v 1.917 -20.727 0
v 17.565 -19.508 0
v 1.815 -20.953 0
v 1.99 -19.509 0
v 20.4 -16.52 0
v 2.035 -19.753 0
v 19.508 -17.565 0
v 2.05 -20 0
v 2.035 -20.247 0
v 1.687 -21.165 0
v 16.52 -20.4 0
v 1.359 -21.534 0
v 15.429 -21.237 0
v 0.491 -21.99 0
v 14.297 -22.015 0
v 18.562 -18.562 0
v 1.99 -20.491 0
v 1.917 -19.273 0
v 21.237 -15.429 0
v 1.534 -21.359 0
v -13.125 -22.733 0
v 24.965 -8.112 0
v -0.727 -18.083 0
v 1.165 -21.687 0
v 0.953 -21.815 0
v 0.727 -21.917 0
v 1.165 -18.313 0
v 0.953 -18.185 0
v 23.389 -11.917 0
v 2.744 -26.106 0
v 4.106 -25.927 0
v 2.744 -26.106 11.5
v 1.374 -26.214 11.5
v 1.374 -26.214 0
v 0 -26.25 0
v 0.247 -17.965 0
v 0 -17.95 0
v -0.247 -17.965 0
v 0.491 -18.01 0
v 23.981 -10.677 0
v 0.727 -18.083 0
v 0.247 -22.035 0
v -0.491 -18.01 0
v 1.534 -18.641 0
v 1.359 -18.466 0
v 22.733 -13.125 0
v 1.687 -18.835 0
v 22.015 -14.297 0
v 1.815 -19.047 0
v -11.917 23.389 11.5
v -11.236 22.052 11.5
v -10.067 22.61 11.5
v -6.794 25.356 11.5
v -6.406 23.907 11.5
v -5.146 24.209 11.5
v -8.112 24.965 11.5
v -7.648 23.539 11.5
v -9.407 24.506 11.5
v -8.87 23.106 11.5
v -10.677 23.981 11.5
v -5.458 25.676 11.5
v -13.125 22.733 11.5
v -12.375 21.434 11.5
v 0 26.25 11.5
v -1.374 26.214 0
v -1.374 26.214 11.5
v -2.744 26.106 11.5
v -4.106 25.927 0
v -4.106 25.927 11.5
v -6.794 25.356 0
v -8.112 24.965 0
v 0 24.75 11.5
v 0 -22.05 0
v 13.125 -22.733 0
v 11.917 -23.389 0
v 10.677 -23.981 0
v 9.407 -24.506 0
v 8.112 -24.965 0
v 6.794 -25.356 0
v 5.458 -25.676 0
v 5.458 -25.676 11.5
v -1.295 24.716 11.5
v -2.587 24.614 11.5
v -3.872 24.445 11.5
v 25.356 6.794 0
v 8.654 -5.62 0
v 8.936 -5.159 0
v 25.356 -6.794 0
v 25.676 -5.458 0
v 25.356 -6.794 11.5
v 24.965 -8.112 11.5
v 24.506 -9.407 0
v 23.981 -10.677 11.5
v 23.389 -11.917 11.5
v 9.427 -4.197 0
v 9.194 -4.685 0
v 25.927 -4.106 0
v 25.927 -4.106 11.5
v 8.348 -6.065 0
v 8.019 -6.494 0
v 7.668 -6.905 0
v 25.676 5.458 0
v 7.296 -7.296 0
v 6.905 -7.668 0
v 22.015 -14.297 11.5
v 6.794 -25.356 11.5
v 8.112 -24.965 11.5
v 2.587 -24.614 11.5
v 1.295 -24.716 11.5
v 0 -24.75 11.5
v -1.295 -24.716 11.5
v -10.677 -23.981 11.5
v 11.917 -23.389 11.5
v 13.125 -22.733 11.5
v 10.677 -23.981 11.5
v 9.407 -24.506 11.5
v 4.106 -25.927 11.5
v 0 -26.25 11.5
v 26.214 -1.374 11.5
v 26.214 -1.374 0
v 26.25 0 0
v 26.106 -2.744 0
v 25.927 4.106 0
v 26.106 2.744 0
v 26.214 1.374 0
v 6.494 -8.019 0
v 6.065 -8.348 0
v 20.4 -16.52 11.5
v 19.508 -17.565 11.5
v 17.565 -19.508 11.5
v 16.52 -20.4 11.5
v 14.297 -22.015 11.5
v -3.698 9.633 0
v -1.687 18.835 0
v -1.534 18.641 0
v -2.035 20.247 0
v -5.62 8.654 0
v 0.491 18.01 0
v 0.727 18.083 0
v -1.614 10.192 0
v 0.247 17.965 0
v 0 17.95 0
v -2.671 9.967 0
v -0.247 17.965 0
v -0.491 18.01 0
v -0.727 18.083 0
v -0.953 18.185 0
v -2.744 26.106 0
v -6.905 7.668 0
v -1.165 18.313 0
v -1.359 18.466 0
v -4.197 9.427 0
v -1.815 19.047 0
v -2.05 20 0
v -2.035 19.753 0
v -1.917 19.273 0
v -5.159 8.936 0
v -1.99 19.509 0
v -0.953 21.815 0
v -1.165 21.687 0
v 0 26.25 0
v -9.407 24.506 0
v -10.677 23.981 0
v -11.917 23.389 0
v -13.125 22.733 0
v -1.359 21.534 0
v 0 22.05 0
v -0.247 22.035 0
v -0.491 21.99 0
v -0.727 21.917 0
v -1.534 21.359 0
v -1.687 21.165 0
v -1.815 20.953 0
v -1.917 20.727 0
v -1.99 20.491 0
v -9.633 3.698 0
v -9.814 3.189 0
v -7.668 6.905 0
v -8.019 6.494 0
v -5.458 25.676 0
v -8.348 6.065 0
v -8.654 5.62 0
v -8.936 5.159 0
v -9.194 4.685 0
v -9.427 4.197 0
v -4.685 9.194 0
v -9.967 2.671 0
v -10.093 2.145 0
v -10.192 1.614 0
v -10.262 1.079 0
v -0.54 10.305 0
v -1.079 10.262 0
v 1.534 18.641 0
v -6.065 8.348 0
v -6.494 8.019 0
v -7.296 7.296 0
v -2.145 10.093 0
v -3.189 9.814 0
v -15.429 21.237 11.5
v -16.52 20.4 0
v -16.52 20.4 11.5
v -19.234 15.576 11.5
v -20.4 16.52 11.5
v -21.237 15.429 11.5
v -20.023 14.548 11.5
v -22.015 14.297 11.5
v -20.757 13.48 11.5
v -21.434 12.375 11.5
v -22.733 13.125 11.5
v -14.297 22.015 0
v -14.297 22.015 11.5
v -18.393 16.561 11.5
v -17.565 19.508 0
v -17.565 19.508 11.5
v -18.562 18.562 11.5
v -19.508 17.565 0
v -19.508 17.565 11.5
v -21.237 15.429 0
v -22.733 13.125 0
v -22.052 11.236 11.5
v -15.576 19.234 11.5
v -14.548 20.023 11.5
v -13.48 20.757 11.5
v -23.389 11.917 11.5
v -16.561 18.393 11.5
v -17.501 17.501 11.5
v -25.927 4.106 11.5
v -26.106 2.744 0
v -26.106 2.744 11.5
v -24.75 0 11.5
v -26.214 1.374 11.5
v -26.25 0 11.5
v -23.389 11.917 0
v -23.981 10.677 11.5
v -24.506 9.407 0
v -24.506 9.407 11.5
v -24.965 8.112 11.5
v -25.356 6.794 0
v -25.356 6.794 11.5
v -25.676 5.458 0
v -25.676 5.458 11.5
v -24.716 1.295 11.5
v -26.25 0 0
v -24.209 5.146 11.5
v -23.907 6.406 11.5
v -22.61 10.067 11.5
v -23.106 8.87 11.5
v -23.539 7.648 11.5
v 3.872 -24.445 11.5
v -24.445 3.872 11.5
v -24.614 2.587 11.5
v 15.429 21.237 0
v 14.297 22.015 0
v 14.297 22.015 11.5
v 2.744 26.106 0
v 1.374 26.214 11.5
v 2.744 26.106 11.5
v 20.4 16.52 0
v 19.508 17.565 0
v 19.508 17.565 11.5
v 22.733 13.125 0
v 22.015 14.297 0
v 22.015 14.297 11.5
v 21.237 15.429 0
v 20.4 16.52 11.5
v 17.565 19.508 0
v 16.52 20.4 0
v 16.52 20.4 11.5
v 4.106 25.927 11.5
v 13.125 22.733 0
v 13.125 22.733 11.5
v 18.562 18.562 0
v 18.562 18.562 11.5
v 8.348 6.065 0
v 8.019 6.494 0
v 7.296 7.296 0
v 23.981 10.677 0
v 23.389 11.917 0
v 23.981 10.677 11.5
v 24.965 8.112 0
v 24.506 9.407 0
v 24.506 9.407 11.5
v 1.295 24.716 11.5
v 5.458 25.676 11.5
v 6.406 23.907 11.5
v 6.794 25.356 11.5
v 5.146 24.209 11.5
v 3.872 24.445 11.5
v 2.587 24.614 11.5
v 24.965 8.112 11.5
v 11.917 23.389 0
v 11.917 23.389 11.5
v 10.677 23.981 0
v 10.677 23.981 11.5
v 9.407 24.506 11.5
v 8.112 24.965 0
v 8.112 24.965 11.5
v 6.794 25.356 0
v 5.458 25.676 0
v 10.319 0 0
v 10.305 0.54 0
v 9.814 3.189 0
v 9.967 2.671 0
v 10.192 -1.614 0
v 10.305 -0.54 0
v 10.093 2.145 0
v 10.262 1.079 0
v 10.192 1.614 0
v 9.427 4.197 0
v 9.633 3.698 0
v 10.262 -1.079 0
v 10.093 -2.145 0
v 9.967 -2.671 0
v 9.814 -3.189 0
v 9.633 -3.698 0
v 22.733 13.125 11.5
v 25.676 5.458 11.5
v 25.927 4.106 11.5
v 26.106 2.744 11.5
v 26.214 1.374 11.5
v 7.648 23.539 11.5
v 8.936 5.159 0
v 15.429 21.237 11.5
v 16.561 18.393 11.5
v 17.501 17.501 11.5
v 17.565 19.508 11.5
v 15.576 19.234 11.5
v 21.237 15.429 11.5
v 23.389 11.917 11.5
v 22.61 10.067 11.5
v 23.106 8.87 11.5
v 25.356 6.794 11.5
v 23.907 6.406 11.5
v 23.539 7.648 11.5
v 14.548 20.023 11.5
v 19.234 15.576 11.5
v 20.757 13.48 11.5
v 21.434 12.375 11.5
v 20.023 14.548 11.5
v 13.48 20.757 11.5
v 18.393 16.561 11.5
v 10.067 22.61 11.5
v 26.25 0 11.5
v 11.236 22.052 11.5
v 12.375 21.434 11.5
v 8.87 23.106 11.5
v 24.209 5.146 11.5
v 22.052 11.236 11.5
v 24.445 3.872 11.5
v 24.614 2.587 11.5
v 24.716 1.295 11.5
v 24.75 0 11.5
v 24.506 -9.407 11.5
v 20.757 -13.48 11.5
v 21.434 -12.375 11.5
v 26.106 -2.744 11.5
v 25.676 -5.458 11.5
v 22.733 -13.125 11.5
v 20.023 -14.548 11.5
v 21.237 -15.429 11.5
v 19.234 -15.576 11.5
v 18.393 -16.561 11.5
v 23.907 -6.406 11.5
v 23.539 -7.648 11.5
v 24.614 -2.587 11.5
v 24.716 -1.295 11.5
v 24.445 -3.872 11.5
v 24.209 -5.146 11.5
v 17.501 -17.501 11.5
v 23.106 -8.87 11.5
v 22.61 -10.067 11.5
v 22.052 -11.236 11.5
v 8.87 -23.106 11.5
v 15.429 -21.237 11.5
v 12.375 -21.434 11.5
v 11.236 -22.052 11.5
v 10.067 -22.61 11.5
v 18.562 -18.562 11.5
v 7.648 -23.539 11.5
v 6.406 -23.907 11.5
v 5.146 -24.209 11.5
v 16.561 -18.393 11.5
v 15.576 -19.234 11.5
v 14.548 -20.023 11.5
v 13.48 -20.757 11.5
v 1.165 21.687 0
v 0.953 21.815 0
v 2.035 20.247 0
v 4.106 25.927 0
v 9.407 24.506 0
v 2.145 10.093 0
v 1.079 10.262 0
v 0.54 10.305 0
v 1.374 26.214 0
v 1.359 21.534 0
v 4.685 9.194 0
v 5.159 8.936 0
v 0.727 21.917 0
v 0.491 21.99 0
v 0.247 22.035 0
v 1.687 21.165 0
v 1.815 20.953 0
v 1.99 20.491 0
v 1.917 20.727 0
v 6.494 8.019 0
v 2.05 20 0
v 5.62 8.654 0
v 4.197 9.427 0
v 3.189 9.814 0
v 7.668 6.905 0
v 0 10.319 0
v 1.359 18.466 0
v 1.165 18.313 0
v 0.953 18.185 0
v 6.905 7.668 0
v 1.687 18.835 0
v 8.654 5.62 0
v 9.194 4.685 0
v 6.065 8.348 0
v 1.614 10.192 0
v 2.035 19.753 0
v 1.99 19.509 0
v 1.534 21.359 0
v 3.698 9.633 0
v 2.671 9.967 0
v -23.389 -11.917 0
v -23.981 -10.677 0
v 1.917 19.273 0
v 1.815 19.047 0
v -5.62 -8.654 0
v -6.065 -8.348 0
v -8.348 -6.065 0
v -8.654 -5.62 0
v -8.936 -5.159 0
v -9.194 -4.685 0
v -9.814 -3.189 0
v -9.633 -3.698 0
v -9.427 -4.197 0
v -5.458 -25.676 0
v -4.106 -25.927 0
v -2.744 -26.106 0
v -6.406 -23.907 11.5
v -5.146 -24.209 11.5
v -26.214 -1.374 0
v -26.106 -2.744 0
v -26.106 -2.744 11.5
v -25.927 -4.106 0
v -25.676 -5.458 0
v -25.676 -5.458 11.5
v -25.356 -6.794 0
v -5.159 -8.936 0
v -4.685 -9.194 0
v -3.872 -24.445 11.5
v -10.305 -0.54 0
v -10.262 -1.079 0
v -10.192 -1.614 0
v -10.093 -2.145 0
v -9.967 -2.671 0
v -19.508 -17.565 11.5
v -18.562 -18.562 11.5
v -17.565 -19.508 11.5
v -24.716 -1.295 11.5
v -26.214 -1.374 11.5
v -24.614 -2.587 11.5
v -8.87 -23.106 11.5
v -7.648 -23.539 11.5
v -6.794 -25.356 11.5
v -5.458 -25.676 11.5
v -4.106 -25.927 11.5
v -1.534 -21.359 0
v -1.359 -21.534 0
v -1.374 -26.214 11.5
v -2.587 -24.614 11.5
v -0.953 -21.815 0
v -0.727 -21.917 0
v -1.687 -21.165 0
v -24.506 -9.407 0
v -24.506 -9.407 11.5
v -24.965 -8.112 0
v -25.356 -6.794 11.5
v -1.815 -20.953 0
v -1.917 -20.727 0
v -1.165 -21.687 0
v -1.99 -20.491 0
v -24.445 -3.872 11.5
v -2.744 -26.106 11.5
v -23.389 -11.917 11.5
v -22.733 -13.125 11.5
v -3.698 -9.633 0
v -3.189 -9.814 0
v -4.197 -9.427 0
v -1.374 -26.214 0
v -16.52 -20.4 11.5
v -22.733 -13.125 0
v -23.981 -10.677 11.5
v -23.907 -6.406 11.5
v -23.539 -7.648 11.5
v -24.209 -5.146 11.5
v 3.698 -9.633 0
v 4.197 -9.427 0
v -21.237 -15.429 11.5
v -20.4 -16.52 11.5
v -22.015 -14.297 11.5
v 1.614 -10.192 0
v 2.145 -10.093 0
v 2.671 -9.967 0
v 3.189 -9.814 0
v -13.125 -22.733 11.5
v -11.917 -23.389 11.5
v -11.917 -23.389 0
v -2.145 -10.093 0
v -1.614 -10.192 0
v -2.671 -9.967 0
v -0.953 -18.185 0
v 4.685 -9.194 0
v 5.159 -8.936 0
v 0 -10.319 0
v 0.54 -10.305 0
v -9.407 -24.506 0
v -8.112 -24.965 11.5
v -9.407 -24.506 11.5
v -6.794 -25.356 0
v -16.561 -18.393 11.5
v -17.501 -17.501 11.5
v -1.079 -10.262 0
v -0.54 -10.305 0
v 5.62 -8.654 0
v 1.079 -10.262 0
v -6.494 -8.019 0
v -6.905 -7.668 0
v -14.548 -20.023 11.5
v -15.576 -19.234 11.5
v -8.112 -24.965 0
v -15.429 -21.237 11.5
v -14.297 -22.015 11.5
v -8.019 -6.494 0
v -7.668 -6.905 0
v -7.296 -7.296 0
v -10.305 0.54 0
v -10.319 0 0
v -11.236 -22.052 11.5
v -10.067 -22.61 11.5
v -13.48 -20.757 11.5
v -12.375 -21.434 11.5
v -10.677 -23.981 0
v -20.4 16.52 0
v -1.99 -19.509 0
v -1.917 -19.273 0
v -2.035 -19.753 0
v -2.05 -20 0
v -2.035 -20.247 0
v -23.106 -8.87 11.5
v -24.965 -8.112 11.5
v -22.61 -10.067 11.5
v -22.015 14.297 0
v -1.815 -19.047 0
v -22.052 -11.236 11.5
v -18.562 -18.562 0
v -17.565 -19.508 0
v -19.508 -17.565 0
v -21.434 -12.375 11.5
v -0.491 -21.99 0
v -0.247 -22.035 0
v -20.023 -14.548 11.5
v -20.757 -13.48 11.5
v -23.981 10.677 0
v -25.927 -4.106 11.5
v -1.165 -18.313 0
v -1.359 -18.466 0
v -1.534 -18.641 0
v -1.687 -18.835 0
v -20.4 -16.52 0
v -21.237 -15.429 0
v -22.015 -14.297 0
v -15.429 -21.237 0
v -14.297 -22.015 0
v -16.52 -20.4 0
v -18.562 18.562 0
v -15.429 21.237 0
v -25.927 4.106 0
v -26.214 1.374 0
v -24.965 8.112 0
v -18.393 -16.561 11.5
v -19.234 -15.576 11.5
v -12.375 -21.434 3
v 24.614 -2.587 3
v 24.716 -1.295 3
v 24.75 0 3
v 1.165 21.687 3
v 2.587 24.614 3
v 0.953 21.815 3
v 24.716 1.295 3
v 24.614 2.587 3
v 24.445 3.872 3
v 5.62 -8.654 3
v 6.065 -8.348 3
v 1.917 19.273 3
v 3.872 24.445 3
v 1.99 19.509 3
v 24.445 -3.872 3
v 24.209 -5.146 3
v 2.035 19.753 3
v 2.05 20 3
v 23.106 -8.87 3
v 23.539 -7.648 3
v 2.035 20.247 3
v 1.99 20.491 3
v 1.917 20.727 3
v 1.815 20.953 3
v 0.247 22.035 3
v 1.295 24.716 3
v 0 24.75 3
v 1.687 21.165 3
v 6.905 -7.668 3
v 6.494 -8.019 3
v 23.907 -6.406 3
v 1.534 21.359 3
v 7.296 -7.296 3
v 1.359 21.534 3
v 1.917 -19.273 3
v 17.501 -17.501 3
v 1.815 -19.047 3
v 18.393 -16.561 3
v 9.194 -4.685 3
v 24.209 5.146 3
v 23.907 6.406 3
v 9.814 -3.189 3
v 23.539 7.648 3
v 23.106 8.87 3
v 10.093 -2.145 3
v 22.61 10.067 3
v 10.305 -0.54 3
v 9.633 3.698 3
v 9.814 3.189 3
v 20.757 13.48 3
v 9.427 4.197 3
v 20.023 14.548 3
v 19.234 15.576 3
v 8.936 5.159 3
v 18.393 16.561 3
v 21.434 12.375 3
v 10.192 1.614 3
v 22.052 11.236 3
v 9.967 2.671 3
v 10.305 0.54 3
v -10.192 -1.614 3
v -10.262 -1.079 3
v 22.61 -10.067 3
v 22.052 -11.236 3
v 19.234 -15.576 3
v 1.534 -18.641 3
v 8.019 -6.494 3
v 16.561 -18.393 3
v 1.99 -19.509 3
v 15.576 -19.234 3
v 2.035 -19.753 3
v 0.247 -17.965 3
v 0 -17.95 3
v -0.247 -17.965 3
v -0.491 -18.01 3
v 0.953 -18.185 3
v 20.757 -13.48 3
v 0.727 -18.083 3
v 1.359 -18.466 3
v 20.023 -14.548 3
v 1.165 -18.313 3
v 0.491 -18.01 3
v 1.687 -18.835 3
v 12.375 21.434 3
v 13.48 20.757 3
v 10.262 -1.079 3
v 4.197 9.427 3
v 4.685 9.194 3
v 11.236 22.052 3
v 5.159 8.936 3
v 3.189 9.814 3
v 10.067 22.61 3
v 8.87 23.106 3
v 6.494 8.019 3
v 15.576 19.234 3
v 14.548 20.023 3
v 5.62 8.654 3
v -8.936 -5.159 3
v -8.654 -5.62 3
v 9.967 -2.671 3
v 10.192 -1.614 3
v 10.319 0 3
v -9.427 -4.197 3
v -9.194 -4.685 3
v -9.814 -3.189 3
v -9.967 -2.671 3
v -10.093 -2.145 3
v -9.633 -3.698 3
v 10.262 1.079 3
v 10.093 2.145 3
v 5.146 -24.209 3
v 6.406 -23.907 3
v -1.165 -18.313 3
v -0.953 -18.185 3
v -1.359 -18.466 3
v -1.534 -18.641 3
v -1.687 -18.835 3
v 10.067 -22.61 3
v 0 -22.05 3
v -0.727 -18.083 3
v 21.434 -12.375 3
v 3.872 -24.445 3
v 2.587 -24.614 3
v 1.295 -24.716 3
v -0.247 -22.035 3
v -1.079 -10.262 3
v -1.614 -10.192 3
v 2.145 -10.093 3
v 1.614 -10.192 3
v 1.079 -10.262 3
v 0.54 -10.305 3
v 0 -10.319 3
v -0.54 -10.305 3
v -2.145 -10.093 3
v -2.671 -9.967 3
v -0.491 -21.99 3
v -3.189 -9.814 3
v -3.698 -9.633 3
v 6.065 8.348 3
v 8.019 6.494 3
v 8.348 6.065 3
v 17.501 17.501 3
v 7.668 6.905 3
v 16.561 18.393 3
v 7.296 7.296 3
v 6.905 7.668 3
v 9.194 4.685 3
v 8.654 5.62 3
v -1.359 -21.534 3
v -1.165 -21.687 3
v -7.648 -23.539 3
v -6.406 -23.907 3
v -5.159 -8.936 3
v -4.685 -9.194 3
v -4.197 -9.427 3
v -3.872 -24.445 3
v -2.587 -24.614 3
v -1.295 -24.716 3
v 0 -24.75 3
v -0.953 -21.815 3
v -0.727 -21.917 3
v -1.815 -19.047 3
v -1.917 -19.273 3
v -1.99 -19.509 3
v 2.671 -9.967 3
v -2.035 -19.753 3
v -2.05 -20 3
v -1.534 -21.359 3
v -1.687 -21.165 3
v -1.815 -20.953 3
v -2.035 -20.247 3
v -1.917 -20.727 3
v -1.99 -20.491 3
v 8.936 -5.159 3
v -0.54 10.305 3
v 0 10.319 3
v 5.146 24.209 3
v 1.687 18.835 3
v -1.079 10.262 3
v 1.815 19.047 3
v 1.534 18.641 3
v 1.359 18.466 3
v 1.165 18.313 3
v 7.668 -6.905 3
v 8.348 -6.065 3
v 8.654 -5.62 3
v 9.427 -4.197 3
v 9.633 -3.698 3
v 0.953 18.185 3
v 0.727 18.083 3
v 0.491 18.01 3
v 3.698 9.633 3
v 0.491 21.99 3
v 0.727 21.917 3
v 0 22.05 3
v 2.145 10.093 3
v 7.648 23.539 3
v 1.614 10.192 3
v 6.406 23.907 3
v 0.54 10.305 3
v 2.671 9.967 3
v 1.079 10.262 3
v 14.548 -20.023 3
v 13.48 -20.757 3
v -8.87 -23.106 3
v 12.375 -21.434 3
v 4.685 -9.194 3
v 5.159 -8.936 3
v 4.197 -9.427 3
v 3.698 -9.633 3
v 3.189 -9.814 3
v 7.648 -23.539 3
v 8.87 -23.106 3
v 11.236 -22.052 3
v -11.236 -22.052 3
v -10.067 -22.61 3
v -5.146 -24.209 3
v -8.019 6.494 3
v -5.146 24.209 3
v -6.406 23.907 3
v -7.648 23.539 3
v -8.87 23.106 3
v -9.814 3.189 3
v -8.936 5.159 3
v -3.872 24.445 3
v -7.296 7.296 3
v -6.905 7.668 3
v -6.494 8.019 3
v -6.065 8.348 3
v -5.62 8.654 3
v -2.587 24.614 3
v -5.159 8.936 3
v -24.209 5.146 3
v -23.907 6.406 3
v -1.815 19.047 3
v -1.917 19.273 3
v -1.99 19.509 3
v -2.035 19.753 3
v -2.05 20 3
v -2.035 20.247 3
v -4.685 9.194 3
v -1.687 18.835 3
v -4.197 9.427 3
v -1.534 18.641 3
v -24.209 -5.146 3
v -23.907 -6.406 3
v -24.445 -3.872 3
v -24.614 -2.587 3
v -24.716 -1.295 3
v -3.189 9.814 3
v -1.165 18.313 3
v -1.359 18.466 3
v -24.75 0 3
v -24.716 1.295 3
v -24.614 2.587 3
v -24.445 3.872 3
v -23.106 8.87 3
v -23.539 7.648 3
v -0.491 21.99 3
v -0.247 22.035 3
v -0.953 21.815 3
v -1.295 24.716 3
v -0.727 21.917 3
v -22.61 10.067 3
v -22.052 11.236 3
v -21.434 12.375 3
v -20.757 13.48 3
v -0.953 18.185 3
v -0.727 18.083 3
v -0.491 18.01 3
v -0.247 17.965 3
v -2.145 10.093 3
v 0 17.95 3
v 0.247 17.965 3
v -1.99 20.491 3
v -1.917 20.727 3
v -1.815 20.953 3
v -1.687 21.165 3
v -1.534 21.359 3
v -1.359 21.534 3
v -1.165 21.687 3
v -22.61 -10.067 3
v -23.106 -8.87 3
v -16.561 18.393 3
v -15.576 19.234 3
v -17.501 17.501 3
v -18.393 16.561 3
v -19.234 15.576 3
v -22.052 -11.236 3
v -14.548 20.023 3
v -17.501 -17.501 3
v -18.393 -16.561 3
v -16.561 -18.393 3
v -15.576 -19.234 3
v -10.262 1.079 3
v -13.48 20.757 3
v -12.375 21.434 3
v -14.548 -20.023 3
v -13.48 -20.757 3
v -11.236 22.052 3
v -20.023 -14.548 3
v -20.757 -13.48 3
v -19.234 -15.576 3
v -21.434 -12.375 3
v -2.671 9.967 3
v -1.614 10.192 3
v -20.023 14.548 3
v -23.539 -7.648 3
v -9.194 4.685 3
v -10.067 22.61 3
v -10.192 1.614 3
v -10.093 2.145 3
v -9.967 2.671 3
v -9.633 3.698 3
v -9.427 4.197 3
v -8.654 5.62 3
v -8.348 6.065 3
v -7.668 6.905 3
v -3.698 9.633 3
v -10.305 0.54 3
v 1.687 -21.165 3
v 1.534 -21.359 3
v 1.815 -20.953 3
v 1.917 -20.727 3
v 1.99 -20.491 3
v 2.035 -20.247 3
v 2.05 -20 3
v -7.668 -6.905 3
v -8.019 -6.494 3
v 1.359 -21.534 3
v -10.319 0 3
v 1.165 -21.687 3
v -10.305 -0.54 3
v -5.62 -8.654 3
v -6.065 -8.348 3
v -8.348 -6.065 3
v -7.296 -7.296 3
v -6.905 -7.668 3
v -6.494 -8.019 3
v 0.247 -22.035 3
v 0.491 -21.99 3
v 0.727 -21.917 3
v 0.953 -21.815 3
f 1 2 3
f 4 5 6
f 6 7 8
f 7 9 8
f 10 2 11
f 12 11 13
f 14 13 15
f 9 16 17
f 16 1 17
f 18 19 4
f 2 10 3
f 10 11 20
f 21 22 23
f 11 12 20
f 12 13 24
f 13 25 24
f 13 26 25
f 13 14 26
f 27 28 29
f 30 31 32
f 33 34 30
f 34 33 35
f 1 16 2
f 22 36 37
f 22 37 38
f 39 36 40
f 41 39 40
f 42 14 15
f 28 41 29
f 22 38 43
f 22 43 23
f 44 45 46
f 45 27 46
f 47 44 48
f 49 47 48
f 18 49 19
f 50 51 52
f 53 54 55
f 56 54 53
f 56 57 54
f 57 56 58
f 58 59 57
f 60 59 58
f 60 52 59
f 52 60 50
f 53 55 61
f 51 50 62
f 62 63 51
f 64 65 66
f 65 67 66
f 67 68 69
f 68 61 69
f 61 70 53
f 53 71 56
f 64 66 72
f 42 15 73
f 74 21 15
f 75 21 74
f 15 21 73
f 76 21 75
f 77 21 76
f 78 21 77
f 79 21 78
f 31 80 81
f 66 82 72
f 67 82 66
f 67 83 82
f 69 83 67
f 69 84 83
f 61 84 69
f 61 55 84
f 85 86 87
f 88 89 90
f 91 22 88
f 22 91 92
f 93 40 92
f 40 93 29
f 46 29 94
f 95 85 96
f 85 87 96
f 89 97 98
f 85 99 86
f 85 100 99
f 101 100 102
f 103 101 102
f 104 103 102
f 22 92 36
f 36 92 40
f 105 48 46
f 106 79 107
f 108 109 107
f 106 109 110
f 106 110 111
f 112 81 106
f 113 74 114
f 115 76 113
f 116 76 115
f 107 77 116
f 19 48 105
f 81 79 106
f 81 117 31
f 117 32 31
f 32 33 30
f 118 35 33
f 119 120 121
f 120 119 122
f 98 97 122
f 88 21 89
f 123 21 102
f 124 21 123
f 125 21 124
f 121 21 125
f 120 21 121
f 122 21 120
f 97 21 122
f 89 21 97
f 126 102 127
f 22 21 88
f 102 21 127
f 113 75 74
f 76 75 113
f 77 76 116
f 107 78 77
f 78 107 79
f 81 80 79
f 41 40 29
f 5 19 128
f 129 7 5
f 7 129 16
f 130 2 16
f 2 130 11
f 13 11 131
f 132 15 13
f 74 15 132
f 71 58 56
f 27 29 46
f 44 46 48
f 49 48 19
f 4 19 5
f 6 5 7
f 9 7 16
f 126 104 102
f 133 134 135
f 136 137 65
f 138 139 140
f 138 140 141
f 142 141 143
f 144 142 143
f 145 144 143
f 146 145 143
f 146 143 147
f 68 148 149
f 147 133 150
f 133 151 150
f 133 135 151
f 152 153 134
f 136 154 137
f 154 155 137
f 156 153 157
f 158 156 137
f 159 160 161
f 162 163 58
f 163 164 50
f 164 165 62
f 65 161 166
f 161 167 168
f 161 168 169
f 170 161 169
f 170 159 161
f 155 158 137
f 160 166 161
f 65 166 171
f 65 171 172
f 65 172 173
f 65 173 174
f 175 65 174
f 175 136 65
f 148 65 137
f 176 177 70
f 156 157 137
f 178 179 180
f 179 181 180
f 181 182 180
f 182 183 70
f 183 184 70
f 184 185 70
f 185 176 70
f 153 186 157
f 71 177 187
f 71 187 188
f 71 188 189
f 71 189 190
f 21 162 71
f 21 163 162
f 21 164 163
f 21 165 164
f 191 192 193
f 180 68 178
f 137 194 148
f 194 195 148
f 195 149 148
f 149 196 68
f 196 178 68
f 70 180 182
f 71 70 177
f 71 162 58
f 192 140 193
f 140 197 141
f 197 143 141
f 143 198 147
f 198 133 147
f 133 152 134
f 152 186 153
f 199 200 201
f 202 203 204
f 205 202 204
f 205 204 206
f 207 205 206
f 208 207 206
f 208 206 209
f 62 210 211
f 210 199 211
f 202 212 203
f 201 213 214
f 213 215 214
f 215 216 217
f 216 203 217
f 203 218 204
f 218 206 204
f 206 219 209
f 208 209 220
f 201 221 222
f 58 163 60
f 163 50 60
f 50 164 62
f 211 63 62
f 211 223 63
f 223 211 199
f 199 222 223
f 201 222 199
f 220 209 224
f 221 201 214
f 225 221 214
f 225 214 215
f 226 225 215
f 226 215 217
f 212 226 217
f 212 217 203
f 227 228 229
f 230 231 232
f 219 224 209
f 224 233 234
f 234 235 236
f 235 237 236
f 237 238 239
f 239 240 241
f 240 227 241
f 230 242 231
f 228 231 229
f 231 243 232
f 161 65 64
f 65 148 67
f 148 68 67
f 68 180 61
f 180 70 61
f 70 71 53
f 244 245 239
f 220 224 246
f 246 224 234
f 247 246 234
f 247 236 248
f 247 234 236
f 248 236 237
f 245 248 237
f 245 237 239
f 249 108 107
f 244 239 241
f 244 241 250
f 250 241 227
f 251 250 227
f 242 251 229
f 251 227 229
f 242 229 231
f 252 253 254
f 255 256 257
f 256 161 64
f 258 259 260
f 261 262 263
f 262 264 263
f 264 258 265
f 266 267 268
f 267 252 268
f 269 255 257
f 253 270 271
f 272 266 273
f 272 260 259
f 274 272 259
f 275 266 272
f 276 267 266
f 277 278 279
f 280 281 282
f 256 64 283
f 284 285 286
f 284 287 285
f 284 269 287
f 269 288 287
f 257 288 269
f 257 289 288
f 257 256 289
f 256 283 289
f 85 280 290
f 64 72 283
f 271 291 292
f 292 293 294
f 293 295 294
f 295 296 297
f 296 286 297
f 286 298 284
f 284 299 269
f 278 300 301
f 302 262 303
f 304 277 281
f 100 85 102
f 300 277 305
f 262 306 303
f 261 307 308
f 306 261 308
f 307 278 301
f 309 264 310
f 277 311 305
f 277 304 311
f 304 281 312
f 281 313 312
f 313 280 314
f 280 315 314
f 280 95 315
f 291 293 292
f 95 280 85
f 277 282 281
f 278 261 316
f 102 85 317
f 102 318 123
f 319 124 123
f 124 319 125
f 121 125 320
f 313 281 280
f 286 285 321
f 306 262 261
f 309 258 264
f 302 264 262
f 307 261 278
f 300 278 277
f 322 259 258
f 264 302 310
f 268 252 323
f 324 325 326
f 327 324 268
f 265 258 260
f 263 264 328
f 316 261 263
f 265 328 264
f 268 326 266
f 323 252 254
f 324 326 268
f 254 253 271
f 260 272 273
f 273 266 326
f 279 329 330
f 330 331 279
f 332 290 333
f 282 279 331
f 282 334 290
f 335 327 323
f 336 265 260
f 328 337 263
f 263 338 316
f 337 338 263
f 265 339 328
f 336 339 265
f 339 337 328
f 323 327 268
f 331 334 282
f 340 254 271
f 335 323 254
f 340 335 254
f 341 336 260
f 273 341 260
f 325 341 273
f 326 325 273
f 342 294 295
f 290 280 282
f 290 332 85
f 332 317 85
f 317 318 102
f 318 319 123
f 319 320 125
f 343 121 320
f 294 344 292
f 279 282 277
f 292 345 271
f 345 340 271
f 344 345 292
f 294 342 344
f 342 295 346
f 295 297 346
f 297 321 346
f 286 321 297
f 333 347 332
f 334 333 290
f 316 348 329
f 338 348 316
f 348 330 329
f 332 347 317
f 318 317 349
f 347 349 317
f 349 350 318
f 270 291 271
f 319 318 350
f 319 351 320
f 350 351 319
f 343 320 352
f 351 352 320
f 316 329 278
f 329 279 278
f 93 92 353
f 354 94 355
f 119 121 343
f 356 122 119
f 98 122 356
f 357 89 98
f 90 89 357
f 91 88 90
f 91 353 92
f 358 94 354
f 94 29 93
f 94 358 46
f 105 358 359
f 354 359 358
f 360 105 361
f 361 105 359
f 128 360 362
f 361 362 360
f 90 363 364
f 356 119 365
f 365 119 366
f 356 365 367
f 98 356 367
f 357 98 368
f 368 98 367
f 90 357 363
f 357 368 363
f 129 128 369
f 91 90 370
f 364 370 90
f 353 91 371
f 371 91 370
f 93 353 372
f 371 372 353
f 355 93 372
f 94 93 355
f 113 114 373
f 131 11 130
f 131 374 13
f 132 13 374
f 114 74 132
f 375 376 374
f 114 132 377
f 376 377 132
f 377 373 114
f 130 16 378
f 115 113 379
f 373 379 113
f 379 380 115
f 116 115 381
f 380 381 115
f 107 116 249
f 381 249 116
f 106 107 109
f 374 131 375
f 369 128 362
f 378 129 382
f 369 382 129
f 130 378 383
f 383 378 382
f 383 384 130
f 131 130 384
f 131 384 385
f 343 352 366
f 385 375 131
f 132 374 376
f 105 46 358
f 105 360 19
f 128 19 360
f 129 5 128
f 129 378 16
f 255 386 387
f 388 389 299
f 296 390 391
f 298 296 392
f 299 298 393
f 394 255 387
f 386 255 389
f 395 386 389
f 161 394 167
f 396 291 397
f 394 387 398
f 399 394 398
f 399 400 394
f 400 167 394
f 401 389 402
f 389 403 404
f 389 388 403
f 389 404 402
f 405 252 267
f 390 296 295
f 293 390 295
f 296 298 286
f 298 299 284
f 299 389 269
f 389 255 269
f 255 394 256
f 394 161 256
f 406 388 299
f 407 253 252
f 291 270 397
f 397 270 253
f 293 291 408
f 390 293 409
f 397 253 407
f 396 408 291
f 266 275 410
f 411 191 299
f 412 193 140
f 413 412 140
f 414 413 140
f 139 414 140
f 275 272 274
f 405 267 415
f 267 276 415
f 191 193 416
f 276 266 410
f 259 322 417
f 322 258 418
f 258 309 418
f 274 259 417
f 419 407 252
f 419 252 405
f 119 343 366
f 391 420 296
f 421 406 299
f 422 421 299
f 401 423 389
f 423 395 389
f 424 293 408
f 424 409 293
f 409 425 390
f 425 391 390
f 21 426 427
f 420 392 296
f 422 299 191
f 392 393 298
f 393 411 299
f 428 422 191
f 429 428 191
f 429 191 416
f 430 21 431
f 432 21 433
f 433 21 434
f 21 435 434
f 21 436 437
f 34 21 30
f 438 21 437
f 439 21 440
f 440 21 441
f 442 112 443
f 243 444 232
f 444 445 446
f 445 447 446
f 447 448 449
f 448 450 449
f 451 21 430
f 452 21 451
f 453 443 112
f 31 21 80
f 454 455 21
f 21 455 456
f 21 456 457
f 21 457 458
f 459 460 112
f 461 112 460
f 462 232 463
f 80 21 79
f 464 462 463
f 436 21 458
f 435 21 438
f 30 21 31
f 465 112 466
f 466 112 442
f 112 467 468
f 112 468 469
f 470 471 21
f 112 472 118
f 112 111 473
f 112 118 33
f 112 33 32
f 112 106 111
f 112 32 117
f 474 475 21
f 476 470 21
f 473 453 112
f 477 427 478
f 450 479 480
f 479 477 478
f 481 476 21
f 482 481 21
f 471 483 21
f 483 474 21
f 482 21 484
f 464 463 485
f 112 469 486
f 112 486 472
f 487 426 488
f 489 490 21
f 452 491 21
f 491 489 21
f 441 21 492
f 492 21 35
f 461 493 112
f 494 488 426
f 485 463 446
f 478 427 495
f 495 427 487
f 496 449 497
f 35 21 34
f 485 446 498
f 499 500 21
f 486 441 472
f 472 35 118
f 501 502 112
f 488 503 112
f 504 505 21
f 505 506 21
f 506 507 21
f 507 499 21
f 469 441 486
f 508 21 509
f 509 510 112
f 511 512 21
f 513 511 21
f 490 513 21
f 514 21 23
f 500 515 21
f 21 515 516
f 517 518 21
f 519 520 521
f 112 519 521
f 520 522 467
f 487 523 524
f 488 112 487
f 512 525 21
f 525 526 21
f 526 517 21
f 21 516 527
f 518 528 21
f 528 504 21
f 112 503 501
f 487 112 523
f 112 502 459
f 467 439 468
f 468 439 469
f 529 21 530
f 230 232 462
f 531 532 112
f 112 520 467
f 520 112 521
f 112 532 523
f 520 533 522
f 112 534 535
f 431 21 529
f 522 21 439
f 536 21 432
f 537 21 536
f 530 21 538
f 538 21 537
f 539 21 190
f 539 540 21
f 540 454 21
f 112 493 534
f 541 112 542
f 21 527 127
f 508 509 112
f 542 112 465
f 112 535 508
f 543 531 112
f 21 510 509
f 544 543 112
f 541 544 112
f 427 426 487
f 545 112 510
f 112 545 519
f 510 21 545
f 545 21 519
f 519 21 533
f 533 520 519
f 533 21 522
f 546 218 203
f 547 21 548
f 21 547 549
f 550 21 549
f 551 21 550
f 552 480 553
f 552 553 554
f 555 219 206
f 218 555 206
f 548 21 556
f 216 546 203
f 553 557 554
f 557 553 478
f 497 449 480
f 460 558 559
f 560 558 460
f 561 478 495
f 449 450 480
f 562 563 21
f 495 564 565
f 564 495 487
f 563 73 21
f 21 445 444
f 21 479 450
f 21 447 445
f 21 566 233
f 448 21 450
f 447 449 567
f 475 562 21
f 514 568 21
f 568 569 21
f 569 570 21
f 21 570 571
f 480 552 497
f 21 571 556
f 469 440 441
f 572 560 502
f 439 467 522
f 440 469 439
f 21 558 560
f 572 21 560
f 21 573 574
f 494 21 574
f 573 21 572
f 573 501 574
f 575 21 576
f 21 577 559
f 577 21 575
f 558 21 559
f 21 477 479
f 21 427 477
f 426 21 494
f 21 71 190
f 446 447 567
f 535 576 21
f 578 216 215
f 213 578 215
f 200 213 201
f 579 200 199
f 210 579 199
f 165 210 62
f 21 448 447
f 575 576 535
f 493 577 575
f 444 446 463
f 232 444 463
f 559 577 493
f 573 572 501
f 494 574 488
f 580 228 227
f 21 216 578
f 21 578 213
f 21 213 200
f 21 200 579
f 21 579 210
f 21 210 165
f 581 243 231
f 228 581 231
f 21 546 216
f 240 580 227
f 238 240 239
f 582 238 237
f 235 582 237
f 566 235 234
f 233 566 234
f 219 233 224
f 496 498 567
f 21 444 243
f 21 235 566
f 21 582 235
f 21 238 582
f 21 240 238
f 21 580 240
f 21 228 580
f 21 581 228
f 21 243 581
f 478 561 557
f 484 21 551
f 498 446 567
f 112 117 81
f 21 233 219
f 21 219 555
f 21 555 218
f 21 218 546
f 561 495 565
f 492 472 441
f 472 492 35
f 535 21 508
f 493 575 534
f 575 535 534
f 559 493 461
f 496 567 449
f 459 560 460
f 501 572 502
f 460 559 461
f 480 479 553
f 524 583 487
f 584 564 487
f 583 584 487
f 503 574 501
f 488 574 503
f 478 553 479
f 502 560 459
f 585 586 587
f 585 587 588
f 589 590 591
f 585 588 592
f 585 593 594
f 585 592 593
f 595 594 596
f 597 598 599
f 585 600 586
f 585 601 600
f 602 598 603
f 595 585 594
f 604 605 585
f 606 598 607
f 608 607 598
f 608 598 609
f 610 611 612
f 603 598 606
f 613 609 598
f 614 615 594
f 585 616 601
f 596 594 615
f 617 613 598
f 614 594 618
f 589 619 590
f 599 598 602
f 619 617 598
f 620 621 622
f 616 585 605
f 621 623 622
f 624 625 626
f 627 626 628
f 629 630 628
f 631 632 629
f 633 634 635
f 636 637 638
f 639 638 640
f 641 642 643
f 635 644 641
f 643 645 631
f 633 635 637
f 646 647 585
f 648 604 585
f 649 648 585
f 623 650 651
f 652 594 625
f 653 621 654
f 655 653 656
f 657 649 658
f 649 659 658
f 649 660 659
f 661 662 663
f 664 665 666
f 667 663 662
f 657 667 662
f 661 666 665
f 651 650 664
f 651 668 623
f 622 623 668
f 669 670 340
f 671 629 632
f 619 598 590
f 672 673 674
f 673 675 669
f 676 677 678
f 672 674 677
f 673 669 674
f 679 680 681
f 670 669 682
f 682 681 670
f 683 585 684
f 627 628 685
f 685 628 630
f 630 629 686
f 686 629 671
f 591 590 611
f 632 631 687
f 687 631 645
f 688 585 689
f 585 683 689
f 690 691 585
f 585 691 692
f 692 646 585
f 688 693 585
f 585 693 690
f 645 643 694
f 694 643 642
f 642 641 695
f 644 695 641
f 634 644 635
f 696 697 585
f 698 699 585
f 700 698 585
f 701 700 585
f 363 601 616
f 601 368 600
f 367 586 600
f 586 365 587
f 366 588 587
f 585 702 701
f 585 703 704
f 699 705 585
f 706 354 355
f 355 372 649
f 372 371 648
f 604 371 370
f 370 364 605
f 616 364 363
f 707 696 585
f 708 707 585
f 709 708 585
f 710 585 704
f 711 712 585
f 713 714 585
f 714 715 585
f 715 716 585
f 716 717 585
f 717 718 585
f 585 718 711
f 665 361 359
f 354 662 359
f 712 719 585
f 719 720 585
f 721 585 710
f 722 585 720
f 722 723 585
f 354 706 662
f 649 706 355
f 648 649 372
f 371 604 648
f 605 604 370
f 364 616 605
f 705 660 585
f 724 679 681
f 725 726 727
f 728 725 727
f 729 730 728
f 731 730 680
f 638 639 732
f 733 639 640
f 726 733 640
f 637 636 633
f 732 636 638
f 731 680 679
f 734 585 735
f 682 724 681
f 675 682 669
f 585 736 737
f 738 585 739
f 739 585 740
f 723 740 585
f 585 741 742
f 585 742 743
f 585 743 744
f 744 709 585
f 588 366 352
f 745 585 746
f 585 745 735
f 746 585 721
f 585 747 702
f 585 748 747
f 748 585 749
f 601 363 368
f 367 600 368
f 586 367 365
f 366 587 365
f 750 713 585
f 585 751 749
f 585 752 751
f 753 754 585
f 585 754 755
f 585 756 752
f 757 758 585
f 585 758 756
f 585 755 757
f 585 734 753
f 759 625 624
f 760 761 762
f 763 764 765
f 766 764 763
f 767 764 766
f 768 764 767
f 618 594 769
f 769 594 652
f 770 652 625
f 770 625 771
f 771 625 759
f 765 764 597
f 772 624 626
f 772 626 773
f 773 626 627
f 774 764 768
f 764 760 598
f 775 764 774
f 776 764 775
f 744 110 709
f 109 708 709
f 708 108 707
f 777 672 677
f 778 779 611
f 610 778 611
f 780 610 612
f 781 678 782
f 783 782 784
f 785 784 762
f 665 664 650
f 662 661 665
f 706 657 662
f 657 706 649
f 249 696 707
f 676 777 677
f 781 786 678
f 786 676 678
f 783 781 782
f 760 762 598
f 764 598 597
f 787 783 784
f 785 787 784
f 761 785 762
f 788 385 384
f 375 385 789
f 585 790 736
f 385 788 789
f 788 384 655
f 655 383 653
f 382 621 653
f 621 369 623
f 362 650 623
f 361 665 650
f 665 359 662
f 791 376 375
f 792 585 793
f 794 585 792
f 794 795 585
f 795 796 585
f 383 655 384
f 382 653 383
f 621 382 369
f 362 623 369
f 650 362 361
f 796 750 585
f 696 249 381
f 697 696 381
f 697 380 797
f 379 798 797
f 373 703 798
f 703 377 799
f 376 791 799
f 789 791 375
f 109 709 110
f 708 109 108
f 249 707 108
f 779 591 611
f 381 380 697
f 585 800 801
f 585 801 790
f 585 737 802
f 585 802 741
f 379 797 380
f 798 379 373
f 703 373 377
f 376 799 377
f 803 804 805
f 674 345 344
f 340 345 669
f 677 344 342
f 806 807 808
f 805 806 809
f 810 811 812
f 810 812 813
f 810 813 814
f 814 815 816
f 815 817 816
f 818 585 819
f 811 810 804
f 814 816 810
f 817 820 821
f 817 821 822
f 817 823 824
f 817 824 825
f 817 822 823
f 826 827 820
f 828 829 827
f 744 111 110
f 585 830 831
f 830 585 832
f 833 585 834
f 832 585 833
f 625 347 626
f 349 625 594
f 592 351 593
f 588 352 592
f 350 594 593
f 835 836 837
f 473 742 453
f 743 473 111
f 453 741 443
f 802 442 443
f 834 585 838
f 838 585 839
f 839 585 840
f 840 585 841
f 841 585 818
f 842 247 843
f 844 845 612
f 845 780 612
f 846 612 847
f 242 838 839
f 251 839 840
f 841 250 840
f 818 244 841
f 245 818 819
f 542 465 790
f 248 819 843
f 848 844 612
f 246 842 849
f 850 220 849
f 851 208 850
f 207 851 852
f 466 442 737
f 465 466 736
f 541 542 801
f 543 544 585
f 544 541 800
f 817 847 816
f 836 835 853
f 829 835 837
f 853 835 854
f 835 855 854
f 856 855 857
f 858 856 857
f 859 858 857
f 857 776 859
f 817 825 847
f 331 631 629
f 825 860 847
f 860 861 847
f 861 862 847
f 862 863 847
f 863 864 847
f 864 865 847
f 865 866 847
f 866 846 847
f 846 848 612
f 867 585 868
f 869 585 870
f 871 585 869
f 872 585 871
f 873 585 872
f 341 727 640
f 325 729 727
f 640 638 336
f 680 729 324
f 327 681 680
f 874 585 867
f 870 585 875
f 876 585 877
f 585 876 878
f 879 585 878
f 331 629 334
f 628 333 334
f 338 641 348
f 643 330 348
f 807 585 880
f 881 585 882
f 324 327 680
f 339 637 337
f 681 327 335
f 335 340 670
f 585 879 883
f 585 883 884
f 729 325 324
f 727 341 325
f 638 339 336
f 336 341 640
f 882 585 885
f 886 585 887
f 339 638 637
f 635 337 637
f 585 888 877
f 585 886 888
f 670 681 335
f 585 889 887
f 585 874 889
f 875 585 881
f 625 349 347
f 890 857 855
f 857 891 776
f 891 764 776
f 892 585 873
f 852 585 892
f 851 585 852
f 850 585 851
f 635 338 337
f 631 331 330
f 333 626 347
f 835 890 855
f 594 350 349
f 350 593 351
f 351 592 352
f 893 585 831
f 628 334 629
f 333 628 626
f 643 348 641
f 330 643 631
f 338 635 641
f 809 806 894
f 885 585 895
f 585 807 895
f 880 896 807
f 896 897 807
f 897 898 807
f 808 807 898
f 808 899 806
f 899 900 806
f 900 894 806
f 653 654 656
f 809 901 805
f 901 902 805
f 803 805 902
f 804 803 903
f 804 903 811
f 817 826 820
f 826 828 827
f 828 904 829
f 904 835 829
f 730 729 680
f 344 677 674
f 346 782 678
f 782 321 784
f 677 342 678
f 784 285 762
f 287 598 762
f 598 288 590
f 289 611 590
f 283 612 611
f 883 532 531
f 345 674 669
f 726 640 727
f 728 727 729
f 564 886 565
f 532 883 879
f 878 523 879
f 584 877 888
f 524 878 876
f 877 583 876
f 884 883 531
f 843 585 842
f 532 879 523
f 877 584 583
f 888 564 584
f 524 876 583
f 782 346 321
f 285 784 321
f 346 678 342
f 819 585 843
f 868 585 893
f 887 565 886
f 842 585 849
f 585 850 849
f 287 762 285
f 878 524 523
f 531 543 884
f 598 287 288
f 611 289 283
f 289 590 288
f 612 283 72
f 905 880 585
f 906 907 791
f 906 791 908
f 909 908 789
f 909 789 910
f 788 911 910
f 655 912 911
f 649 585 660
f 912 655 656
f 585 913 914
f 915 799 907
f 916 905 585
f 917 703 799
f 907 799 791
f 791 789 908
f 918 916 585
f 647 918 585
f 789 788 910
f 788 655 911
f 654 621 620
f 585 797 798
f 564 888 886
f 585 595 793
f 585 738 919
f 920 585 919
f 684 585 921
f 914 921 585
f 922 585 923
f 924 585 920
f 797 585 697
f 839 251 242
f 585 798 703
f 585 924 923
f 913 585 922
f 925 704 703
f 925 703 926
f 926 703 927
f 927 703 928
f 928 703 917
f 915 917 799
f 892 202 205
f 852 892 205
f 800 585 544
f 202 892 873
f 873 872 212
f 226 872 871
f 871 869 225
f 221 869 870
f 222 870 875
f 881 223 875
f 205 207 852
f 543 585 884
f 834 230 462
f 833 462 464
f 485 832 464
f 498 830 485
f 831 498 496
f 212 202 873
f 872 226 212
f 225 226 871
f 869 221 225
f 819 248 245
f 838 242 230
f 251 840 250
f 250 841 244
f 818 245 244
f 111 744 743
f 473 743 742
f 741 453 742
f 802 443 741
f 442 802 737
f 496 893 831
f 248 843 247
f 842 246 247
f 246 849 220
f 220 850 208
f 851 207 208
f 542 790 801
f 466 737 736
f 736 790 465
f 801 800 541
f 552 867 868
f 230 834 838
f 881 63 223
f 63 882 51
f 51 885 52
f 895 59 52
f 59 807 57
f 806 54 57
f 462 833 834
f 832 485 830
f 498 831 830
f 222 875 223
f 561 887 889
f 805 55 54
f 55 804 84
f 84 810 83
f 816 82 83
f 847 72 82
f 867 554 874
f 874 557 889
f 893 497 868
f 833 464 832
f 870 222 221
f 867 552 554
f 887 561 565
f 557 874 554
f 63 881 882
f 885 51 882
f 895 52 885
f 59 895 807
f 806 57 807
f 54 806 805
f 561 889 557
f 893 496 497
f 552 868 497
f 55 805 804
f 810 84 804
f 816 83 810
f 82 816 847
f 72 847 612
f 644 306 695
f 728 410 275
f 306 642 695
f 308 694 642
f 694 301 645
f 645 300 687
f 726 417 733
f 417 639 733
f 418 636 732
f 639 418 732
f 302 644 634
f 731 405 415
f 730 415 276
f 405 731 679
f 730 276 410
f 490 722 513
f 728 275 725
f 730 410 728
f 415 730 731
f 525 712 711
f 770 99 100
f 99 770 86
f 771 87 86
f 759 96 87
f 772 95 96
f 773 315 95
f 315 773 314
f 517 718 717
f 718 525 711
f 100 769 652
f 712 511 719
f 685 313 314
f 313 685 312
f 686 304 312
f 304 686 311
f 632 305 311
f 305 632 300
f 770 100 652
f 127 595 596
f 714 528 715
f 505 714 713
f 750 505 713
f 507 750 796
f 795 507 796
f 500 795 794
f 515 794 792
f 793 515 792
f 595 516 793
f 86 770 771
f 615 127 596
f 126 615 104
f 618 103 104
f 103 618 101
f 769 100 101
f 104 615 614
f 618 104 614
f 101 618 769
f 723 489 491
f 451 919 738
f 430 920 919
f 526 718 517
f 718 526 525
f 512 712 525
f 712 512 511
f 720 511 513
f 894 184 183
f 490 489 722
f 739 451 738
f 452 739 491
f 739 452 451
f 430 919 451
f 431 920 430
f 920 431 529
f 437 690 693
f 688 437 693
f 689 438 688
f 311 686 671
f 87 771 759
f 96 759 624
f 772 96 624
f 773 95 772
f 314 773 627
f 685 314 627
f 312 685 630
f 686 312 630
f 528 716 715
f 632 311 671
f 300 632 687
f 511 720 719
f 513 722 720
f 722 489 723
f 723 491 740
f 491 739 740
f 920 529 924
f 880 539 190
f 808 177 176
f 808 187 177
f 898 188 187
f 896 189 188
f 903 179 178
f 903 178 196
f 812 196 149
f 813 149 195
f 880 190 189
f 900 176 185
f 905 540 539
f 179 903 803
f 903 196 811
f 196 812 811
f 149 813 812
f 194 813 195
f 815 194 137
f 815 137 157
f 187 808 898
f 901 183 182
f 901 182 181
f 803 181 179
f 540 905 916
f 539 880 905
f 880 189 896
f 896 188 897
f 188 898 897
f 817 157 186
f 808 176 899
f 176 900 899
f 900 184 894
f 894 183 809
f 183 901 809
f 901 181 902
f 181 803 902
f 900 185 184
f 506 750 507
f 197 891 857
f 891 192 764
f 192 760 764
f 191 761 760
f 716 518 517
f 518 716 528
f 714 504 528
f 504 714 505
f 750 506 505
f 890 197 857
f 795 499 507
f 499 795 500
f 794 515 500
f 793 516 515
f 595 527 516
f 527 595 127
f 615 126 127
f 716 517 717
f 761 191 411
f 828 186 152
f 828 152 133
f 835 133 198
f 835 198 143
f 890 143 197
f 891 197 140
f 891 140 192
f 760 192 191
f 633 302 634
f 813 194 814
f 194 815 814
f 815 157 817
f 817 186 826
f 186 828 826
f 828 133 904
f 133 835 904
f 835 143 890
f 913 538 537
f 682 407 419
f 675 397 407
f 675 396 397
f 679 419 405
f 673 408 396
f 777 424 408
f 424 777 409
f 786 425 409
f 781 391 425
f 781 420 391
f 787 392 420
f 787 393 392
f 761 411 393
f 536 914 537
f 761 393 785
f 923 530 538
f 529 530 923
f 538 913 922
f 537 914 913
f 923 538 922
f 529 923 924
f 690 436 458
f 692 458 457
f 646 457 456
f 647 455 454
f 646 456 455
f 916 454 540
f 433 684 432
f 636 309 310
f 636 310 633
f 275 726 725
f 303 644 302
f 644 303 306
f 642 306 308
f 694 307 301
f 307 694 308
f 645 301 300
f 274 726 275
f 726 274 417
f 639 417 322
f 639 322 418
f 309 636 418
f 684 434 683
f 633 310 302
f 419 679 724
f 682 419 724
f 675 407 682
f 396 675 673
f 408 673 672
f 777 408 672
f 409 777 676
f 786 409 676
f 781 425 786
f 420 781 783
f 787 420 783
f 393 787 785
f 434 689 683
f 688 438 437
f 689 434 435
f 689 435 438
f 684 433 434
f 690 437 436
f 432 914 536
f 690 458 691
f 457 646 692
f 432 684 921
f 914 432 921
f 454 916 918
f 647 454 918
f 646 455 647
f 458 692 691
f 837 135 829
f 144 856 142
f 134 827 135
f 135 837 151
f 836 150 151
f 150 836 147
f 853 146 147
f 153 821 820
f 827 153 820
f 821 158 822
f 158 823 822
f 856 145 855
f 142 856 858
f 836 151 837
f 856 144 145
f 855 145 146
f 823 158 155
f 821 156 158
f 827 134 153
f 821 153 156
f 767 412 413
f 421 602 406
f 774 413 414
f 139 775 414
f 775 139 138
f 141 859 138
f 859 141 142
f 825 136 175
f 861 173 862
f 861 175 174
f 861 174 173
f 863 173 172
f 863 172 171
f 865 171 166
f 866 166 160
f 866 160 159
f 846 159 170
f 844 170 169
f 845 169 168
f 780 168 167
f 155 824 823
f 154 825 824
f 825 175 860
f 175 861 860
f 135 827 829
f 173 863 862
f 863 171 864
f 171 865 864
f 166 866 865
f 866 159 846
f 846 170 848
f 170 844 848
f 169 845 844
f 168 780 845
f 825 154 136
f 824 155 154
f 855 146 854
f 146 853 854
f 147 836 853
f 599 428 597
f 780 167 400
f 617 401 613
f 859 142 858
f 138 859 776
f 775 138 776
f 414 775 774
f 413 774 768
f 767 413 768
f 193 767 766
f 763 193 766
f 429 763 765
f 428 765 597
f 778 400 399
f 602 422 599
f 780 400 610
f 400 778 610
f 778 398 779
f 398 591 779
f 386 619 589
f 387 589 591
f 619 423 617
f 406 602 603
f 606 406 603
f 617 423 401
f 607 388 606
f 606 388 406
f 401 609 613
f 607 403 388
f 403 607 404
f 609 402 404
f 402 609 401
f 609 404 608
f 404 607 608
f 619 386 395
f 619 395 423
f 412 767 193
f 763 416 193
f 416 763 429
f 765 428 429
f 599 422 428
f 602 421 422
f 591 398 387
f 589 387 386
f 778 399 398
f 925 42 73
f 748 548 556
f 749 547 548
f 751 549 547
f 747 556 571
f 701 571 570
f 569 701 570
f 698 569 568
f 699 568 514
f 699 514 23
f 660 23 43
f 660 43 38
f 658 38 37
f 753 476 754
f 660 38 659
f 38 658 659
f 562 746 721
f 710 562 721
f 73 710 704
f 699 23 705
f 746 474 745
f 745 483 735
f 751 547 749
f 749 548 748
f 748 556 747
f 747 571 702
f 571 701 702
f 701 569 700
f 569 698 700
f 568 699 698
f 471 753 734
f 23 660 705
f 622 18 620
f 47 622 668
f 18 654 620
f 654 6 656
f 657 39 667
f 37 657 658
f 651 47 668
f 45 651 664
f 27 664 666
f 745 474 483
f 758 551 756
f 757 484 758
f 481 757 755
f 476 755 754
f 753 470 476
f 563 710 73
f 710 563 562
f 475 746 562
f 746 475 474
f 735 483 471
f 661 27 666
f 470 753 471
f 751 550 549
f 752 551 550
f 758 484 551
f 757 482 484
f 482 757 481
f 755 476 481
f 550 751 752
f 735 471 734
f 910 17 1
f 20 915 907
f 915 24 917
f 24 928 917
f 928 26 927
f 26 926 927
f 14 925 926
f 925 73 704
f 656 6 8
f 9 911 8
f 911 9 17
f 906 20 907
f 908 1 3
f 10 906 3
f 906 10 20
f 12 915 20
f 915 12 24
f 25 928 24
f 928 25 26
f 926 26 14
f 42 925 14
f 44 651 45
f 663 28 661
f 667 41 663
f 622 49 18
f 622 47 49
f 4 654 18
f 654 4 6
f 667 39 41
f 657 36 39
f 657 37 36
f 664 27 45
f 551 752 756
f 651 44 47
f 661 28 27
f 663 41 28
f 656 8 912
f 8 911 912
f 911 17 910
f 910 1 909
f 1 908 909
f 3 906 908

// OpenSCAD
// print with 10% rectilinear infill

$fa=3;
$fs=0.25;
epsilon=0.01;

shell_dia=49.5; // inside diameter of front brake fluid reservoir top
shell_thk=3;    // shell thickness
shell_hgt=8.5;  // height of lip
bolt_off=20;    // bolt offsets
bolt_dia=4.1;   // bolt hole size
bottle_dia=20.6375;

difference() {
  // main body
  cylinder(h=shell_hgt+shell_thk, d=shell_dia+shell_thk);
  translate([0, 0, shell_thk]) {
    cylinder(h=shell_hgt+shell_thk, d=shell_dia);
  }
  // bottle hole
  cylinder(h=shell_thk, d=bottle_dia);
  // bolt hole
  translate([0, bolt_off, 0]) {
    cylinder(h=shell_thk, d=bolt_dia);
  }
  // bolt hole
  translate([0, -bolt_off, 0]) {
    cylinder(h=shell_thk, d=bolt_dia);
  }
}
